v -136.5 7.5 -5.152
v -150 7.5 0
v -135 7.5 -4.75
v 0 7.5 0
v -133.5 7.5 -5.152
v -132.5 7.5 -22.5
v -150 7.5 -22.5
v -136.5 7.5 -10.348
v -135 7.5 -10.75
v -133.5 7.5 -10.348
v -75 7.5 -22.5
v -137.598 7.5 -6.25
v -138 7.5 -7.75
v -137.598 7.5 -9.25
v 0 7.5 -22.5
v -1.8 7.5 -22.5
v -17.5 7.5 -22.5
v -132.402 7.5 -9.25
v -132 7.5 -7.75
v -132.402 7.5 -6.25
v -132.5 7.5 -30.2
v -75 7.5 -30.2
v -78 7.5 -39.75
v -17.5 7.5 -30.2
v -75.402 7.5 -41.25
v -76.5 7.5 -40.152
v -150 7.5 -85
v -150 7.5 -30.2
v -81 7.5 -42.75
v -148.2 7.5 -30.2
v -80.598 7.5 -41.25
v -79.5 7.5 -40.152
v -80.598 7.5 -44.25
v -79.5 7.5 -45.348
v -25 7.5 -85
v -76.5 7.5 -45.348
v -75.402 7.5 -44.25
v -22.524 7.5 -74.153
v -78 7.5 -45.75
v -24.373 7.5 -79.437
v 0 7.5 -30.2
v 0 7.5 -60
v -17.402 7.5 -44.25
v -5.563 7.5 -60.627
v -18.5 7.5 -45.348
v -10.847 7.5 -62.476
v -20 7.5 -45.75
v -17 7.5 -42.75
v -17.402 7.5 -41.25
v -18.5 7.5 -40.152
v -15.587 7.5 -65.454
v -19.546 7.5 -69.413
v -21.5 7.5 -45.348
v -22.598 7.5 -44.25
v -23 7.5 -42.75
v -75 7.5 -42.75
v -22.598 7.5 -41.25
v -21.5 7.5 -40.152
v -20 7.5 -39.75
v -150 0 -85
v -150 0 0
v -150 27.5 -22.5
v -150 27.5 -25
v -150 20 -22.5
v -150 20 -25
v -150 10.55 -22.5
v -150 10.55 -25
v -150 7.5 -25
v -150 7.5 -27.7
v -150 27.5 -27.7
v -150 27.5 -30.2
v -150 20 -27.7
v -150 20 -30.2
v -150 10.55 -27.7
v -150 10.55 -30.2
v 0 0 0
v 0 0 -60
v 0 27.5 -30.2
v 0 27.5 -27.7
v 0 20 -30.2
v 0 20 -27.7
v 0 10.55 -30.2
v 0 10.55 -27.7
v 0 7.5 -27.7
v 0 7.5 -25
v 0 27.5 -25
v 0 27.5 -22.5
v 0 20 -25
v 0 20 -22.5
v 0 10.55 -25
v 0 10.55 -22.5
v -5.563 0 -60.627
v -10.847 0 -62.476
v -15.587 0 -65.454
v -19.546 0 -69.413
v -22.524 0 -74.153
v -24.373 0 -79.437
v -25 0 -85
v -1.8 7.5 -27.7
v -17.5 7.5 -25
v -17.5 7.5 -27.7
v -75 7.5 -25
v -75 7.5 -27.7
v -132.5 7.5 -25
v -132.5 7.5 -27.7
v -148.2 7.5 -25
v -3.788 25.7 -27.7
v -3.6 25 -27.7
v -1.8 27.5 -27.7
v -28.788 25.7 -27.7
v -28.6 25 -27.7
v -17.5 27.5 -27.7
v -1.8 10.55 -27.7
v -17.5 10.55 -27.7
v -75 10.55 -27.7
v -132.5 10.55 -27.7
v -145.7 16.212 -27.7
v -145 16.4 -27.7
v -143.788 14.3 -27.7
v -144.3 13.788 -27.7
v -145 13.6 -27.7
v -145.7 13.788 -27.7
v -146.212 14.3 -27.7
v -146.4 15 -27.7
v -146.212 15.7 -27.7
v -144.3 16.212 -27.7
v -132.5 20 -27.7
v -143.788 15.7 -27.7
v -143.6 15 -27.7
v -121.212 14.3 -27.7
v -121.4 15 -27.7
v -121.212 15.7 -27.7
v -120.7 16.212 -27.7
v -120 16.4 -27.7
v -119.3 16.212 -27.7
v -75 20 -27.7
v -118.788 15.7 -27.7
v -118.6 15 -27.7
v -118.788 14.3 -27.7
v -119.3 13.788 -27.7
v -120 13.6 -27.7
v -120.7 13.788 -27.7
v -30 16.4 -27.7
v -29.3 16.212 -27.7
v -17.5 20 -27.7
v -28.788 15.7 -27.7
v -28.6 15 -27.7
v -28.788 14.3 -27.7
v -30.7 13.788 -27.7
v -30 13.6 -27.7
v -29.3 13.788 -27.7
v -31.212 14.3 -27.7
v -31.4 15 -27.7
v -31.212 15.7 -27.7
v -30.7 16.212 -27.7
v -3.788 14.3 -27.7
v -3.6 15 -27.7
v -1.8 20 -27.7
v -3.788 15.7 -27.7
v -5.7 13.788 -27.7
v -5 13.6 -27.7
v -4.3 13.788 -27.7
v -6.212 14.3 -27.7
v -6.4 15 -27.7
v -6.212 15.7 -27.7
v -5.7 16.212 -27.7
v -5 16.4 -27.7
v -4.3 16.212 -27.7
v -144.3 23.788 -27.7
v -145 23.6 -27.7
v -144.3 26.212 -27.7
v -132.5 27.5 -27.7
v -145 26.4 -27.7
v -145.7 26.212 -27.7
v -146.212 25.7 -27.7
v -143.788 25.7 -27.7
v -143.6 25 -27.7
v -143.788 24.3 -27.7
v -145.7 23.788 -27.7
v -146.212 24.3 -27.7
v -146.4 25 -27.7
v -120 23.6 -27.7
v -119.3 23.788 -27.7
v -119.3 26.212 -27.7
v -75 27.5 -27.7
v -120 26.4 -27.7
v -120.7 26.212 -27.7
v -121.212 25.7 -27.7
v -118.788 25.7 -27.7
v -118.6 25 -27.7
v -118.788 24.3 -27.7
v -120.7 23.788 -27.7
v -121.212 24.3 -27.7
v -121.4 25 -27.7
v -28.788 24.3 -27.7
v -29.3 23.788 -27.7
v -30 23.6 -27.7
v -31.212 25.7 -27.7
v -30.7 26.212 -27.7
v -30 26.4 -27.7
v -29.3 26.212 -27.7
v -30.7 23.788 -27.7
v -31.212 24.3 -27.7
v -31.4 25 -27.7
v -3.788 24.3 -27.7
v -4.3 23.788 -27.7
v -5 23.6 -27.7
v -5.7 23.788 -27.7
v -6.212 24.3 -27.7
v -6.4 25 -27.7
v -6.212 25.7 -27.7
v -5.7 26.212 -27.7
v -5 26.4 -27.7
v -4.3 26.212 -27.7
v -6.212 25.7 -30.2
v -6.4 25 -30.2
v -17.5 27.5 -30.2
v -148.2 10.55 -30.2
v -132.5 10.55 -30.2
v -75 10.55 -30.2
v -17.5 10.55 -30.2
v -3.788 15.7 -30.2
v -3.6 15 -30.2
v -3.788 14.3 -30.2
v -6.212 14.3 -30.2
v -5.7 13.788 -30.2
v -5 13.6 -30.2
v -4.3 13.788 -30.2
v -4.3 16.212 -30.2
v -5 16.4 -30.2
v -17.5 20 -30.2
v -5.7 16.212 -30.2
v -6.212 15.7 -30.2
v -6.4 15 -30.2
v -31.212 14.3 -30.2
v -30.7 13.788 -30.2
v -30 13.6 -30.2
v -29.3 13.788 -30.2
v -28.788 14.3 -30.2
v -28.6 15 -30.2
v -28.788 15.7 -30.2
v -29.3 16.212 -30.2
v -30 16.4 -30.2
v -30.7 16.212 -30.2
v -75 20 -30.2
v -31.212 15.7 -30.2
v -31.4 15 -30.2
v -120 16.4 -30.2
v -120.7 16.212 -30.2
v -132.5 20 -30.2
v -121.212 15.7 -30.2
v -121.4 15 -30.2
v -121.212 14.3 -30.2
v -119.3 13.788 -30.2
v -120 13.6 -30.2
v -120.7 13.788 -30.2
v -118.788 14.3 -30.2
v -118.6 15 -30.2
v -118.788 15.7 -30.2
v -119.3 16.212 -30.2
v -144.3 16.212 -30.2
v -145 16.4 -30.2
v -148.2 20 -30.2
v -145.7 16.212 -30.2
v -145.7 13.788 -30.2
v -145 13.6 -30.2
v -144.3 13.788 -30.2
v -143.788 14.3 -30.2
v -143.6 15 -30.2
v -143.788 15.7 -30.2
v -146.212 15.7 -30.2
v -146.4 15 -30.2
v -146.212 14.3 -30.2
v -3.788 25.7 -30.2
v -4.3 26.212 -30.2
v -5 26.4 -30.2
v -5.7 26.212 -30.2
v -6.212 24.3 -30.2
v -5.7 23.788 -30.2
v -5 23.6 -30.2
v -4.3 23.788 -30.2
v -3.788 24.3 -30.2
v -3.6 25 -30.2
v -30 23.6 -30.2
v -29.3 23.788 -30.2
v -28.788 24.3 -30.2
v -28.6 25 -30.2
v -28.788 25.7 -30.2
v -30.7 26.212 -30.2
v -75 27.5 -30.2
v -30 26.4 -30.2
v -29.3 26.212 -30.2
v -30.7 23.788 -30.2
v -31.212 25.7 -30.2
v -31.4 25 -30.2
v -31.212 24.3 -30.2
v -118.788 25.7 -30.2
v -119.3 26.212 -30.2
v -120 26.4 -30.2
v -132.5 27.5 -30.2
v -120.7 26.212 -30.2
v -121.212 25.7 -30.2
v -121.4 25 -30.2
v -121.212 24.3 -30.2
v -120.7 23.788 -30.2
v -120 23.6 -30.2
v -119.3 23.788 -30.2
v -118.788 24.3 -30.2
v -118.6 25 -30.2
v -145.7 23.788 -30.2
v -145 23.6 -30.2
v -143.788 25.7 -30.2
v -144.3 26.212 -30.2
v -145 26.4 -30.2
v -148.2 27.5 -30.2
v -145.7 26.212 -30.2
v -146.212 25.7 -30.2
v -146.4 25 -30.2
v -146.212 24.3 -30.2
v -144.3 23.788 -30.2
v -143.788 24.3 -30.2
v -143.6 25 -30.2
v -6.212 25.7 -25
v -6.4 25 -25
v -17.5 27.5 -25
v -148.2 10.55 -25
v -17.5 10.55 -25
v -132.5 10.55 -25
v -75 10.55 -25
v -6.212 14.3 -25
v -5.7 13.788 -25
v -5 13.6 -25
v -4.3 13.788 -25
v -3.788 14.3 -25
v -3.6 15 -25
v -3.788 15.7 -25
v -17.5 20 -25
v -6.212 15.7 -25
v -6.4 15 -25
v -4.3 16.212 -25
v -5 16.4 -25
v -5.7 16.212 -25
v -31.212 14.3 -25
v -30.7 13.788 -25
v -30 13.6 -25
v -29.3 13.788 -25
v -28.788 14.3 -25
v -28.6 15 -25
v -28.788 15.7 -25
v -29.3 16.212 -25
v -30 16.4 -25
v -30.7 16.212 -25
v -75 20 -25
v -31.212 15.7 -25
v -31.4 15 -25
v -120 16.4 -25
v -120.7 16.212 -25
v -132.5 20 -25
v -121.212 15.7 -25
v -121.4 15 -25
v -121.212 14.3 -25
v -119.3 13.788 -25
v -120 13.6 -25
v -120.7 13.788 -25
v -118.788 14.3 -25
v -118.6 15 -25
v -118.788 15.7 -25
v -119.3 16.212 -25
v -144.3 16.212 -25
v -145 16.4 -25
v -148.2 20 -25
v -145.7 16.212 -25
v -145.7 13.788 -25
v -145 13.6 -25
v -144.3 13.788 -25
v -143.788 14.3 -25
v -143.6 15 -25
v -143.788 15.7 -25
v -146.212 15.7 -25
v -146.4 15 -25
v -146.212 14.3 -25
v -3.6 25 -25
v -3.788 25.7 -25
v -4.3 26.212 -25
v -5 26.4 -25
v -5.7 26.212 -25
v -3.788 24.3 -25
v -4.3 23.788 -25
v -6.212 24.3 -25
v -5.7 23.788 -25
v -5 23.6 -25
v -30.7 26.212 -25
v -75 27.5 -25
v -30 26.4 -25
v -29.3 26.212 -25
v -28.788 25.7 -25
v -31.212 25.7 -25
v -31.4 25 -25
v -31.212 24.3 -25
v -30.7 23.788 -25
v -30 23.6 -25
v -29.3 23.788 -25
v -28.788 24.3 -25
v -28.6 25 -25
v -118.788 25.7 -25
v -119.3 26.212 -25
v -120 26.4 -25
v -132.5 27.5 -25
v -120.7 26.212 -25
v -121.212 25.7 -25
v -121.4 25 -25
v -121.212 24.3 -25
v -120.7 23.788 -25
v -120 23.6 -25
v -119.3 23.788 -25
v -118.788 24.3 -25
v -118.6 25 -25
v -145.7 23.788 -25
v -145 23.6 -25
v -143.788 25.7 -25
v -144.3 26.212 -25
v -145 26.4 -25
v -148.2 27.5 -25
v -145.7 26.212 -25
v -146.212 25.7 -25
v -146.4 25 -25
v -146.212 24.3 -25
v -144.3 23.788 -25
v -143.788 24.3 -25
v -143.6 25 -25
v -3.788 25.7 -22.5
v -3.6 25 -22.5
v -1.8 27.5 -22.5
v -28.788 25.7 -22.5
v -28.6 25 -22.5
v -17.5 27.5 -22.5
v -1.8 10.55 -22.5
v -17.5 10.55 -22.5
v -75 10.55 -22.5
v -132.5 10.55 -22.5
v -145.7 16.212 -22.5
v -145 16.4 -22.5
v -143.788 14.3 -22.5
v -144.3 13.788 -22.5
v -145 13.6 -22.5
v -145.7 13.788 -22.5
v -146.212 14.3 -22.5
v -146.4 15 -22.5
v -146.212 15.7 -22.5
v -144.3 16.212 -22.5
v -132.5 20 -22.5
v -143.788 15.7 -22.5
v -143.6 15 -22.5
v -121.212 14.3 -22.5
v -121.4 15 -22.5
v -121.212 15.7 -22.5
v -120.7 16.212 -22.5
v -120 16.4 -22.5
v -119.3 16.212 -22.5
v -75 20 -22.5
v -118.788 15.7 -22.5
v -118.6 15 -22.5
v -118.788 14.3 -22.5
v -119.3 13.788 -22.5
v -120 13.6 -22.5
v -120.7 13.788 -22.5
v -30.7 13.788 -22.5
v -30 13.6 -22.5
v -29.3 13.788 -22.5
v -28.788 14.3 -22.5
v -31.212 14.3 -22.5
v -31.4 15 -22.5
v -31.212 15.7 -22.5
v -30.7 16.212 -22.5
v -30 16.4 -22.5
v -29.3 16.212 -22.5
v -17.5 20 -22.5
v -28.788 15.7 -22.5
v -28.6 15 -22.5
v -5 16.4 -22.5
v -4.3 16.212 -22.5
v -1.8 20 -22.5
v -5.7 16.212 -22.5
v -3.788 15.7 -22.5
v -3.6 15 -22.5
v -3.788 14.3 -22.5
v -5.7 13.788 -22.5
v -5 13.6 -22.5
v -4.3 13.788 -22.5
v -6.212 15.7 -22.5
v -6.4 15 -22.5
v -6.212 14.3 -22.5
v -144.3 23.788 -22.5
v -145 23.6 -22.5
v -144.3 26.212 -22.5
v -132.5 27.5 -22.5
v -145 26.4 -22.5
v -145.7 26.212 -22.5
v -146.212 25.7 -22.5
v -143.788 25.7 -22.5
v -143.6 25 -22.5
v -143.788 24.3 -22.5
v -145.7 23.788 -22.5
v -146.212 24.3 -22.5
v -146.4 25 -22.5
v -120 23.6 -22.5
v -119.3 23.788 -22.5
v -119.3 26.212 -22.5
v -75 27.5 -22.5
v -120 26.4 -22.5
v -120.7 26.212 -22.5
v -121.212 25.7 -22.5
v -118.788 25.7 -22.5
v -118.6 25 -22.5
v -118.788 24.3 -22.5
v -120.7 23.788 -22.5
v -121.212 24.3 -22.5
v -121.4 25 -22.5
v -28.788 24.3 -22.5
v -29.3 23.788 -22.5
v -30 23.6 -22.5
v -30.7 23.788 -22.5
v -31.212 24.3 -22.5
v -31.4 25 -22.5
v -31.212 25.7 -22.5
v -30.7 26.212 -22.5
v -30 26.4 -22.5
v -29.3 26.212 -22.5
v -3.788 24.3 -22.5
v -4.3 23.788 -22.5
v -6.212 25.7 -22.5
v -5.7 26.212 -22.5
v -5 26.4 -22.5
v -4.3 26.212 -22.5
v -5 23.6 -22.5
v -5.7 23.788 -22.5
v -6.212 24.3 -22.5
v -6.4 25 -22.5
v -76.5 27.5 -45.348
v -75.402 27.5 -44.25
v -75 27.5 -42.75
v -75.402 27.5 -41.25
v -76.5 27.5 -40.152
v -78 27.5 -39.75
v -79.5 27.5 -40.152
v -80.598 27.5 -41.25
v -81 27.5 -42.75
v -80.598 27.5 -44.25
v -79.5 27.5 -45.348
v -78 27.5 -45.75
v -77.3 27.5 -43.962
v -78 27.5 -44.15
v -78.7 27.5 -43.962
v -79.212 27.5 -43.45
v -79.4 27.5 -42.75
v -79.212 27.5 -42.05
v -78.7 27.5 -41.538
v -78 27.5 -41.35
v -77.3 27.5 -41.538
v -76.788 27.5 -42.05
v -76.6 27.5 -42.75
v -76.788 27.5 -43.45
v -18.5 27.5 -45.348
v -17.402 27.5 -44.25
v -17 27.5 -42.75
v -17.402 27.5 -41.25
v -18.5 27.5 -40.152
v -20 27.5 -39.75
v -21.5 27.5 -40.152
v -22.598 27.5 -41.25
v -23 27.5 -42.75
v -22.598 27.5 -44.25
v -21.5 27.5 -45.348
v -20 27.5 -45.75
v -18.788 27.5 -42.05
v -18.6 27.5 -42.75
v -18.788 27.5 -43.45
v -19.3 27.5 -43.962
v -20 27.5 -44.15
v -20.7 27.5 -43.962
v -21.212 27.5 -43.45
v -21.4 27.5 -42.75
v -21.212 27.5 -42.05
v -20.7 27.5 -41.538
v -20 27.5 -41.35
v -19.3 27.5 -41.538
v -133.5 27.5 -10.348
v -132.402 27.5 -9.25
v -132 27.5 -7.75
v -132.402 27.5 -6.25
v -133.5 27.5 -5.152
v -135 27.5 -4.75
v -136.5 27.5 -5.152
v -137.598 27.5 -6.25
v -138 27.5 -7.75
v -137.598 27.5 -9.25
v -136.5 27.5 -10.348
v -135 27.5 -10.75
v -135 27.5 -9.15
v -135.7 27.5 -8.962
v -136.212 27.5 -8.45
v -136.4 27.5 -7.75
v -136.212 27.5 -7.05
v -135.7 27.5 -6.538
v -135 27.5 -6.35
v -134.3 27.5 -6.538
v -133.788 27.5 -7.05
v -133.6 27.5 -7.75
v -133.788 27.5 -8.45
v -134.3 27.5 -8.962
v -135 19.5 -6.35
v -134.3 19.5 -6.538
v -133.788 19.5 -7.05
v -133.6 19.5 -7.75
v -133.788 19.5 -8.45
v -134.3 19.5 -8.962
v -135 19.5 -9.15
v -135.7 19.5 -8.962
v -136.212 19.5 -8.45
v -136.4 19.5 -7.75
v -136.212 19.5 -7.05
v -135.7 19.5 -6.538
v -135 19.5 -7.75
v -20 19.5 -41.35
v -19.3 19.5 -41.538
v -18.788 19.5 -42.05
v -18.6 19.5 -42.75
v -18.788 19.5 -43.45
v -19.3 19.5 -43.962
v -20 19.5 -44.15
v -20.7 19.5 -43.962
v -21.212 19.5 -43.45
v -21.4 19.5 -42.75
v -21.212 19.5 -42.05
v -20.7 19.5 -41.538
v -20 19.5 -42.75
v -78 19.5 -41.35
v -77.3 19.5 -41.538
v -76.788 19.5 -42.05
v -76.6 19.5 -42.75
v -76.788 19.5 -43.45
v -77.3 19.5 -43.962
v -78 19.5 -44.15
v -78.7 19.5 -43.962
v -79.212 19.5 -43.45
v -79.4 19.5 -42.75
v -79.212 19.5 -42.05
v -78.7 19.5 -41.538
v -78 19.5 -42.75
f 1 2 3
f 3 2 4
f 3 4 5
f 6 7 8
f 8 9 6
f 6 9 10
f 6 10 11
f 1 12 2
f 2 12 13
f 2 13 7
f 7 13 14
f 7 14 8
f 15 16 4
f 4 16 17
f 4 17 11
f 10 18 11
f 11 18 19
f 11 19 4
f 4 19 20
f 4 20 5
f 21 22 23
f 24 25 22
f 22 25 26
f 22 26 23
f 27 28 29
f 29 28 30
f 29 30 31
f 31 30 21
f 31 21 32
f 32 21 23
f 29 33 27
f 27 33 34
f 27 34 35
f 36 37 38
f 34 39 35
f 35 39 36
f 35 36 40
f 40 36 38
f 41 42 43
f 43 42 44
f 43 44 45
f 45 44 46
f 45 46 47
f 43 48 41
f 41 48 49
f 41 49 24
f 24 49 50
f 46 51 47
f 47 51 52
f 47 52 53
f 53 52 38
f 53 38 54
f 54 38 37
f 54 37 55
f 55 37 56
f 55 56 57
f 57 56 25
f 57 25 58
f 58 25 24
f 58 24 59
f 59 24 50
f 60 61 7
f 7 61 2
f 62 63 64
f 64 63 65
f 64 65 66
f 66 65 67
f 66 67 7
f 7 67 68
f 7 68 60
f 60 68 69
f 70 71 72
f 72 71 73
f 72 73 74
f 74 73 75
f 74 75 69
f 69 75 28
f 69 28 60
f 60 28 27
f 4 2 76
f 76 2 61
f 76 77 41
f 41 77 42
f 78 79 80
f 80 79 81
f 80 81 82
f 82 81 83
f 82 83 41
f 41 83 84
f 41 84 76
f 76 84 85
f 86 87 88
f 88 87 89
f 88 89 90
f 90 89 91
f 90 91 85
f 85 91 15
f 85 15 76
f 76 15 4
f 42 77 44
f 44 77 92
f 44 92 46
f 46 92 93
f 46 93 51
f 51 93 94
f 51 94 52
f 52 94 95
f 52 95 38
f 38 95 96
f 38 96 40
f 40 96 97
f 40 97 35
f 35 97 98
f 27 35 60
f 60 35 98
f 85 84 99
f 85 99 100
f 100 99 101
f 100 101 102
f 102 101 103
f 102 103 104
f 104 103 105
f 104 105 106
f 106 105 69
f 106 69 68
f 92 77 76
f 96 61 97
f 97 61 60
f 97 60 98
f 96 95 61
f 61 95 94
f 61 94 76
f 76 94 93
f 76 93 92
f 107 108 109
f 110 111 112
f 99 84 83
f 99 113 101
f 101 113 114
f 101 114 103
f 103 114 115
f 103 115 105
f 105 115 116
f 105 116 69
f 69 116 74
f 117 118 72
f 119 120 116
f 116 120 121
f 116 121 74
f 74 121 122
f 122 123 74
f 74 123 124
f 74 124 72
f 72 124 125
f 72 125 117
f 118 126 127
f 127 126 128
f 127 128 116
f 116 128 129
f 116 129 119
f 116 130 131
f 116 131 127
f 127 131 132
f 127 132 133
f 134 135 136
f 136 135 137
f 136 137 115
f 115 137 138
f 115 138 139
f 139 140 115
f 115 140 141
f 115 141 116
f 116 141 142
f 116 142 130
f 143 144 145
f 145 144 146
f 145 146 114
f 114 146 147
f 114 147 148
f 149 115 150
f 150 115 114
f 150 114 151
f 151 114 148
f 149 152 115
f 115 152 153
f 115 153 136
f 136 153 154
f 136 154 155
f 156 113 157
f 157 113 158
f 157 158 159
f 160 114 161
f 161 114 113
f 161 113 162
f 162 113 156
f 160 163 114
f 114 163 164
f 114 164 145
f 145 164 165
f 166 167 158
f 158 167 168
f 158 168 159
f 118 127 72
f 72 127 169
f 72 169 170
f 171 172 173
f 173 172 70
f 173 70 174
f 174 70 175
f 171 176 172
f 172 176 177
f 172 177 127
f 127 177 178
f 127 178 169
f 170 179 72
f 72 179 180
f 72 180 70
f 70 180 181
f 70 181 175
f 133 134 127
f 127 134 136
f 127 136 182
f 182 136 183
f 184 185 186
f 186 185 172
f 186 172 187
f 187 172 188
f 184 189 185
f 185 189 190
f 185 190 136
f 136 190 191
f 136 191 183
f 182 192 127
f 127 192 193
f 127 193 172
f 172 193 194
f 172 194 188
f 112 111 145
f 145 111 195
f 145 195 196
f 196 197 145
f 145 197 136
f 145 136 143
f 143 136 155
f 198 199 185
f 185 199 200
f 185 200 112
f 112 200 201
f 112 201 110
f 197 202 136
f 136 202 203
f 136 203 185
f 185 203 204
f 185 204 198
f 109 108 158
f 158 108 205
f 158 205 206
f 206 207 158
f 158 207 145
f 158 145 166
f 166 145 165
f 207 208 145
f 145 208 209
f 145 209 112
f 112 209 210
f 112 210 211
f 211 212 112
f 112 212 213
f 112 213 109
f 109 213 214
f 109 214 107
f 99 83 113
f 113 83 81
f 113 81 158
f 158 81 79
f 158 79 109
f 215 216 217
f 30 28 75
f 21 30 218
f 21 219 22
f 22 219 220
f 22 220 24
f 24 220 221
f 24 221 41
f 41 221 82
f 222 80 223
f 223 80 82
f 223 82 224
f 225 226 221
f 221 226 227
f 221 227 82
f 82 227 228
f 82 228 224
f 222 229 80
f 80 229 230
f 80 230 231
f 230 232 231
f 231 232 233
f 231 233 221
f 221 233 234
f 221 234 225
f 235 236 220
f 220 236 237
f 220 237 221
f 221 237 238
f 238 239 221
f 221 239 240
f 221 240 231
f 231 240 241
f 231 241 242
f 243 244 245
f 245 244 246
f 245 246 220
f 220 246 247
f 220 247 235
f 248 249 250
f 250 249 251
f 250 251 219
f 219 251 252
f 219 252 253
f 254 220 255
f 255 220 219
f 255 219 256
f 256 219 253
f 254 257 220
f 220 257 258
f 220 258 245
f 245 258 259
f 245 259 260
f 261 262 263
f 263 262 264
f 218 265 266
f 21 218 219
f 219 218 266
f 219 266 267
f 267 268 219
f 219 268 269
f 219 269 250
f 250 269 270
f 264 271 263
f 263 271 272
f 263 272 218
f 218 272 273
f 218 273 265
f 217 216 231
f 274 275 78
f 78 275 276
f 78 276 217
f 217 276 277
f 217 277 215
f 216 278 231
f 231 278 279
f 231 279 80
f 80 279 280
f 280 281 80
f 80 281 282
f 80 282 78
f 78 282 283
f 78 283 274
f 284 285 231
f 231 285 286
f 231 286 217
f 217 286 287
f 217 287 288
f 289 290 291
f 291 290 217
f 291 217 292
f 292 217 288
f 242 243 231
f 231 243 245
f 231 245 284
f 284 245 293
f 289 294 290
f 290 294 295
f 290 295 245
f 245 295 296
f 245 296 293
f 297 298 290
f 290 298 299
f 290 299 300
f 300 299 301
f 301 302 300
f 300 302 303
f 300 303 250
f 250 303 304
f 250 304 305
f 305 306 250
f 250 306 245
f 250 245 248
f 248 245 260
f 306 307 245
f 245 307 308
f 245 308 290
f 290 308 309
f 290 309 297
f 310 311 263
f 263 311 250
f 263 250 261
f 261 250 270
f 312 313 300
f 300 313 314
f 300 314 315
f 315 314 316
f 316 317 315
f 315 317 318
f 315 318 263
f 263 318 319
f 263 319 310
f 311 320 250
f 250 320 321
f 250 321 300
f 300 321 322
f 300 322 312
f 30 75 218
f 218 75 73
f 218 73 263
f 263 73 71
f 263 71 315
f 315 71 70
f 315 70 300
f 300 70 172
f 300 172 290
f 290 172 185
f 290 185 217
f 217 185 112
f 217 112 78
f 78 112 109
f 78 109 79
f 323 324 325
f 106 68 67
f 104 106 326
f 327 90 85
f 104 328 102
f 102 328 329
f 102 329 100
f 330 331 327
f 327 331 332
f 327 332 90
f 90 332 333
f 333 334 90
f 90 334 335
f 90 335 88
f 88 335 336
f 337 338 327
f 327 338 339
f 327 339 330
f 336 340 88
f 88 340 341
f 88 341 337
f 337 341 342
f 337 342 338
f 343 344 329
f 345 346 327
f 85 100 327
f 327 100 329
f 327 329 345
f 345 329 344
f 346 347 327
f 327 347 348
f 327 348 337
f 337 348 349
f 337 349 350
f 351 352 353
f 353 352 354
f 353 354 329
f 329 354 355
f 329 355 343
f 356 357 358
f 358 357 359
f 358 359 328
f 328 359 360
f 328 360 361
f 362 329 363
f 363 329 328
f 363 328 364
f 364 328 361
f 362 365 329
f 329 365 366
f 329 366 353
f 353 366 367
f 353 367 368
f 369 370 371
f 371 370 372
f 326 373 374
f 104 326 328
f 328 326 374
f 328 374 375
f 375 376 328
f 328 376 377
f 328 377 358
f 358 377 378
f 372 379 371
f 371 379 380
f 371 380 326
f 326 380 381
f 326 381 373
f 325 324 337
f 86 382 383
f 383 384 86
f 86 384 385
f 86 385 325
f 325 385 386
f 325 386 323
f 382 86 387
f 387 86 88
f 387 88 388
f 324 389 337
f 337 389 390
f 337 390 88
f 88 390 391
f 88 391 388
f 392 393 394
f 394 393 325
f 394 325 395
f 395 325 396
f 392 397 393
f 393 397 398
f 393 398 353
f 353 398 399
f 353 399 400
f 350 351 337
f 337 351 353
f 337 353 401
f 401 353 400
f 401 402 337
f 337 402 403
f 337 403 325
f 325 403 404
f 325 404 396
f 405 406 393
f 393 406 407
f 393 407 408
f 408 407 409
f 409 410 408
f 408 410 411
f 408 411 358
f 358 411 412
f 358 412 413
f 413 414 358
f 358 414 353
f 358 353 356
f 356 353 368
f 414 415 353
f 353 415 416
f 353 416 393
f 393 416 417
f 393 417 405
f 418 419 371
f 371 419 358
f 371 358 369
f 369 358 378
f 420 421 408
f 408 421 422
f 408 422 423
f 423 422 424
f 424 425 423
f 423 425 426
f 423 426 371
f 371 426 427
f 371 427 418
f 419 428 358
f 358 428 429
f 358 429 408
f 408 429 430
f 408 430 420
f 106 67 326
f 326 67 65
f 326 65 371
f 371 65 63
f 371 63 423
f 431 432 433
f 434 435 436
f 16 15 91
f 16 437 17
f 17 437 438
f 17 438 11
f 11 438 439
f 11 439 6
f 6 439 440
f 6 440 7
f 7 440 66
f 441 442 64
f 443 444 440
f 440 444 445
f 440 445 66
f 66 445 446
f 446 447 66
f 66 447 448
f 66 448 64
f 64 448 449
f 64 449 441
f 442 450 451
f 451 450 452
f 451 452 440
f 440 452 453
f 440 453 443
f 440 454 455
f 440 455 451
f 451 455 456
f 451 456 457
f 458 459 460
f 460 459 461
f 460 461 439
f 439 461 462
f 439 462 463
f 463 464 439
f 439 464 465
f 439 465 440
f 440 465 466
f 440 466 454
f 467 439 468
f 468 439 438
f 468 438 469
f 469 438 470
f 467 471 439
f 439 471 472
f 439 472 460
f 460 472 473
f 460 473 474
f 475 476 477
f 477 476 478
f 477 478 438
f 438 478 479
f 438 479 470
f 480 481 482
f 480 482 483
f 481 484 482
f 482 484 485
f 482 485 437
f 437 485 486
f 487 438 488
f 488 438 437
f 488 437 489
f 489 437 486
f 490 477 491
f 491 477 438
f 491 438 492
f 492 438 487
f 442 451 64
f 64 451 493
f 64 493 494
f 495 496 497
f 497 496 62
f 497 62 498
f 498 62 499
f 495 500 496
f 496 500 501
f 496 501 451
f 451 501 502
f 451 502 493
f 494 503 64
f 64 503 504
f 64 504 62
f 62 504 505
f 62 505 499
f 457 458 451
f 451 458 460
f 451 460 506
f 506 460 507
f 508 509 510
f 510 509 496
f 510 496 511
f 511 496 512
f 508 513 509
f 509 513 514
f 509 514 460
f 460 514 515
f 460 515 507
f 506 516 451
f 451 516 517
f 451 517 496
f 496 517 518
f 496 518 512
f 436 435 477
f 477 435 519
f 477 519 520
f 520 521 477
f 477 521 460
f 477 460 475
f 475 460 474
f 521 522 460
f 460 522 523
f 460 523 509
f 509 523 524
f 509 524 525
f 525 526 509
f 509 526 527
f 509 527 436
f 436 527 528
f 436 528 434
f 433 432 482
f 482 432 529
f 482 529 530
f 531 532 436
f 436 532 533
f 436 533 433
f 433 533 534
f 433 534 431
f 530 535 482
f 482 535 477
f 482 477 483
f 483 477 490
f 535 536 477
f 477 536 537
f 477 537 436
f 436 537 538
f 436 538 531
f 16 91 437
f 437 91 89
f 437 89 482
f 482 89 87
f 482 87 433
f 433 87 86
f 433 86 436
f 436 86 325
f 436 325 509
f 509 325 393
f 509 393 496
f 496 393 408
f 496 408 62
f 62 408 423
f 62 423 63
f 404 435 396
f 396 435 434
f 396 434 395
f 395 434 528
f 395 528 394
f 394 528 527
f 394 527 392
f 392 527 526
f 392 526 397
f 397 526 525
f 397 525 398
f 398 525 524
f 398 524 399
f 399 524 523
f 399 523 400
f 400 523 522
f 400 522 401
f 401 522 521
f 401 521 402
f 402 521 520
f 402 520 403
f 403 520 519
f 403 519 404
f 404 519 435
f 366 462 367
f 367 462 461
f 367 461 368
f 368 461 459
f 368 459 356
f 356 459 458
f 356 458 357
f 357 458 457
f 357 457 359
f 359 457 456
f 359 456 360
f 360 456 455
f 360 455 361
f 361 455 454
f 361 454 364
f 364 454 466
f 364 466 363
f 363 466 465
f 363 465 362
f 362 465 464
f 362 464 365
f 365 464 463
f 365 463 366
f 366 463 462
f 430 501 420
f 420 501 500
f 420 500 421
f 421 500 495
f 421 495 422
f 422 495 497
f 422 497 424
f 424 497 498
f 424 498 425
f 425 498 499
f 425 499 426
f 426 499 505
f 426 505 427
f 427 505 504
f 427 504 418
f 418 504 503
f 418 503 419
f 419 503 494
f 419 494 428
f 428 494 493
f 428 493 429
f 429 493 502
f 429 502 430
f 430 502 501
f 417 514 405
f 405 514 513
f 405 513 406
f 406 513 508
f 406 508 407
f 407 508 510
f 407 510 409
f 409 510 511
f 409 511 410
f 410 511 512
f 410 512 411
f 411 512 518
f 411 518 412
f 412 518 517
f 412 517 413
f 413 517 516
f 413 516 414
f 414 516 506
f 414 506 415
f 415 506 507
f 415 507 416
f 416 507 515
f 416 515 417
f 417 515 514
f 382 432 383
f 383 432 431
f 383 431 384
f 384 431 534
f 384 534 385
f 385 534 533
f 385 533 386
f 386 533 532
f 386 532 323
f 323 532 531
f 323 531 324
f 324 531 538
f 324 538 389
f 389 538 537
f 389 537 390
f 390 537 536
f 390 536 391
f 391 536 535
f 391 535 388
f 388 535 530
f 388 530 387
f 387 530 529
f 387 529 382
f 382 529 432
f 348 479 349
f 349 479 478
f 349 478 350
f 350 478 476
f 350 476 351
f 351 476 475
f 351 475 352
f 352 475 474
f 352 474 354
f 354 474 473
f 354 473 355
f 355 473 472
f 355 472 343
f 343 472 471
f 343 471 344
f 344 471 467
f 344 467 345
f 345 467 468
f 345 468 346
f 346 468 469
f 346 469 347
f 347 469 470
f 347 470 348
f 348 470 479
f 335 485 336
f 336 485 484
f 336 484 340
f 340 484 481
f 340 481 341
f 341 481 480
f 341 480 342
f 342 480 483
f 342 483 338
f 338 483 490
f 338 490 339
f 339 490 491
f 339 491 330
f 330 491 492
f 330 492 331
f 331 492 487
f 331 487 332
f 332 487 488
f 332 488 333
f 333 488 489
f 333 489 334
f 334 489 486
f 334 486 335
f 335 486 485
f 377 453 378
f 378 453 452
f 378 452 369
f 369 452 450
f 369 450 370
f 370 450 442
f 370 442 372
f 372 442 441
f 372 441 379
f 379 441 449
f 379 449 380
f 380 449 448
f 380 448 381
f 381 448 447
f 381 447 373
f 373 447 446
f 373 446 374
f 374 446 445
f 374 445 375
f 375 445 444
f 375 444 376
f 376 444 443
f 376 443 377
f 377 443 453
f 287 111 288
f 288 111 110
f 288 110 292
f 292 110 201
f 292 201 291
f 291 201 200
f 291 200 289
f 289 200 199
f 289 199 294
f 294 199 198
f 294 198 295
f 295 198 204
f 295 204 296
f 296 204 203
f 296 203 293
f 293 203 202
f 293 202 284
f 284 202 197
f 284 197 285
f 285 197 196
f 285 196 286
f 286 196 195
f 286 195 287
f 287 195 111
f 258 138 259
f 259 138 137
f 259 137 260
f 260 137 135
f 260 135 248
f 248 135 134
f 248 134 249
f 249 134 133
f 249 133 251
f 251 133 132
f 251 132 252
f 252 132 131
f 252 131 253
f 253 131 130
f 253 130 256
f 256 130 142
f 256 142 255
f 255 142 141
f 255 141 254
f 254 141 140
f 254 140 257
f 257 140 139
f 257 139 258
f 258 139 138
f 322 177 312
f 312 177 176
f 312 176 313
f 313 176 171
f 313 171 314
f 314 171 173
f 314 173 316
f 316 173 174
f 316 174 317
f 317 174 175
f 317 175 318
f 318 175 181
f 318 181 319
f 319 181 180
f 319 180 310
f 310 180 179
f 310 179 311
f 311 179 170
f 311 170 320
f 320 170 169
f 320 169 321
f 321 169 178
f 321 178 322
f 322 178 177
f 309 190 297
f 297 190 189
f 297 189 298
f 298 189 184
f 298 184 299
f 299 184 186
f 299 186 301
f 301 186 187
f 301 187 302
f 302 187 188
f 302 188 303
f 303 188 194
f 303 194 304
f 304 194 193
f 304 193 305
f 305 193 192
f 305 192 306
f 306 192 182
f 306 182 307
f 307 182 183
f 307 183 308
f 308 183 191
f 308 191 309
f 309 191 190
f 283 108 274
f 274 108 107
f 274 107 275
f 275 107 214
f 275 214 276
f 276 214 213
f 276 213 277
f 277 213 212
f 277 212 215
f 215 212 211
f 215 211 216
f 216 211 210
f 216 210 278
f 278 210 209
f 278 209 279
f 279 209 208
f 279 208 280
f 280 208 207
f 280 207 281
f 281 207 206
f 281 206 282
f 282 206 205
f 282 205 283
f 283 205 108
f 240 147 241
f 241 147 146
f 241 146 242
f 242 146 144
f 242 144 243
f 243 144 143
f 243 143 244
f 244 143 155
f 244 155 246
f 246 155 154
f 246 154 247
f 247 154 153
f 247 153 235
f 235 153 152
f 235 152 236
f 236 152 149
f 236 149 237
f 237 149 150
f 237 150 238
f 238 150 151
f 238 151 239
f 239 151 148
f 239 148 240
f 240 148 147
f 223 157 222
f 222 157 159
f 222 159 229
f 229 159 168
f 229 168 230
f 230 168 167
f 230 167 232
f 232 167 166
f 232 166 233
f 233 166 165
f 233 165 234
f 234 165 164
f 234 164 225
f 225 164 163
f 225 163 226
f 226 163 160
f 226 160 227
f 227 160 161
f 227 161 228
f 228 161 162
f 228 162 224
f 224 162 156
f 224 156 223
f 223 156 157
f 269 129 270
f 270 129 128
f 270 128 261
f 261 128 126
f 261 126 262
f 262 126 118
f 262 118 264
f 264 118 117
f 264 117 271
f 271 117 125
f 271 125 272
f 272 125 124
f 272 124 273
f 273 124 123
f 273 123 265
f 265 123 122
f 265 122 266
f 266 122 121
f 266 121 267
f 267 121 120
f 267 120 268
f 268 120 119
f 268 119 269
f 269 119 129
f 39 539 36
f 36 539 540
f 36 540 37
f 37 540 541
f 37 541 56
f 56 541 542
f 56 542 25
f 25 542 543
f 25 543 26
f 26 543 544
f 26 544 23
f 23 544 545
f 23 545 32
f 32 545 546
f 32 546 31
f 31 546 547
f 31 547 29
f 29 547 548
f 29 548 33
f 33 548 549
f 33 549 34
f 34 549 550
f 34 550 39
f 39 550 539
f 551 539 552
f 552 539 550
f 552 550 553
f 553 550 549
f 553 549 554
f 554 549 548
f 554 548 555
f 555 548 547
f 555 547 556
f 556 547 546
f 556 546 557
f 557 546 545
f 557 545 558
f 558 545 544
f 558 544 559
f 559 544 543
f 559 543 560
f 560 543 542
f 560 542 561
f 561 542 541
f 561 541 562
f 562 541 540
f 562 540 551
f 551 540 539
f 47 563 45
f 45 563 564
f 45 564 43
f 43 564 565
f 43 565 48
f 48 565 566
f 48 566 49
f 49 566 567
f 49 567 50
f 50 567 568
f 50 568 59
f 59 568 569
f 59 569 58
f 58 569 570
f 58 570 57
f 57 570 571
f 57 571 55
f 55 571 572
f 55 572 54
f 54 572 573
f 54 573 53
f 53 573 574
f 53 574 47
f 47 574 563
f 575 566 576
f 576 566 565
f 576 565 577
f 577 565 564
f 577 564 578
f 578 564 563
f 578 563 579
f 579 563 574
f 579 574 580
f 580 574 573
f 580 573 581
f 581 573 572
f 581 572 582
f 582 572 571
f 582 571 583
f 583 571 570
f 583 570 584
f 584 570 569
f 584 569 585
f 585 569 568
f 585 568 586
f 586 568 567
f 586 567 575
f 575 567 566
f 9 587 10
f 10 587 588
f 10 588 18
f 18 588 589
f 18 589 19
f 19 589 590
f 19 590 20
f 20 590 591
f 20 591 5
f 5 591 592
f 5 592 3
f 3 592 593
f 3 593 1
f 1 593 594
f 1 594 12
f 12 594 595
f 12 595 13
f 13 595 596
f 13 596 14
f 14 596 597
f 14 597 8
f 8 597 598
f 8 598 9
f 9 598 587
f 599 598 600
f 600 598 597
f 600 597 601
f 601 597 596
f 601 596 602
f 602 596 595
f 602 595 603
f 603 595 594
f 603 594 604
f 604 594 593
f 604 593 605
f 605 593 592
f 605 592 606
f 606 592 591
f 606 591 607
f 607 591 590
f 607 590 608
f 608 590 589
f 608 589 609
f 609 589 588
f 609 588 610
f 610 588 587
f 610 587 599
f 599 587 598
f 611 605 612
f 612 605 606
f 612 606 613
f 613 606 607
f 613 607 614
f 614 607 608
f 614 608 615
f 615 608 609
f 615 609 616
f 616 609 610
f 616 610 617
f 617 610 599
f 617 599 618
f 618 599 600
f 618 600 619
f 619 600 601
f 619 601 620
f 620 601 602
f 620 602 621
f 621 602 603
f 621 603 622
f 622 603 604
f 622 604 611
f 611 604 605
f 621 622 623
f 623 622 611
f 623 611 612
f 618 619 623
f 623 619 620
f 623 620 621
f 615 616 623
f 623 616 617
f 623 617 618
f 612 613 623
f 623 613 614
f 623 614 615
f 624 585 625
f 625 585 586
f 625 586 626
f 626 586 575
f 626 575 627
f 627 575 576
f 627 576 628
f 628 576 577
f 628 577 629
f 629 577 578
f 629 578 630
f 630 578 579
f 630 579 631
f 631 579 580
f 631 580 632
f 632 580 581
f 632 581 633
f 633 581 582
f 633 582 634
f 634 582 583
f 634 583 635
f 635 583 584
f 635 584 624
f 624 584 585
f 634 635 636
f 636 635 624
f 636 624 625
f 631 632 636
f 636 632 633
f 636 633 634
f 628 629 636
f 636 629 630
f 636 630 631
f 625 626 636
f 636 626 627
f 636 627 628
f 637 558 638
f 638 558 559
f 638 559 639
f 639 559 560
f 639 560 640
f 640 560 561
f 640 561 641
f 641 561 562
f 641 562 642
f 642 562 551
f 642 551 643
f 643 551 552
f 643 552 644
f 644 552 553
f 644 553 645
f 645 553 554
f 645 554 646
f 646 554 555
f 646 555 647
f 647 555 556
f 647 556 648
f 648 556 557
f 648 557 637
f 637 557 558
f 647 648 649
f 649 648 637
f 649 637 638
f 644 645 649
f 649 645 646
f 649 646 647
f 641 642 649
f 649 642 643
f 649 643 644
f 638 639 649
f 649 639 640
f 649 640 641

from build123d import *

# Parameters (mm, degrees)
BOSS_EXTRUDE1_DEPTH = 7.5
SKETCH2_W           = 150
SKETCH2_H           = 2.5
BOSS_EXTRUDE2_DEPTH = 20
SKETCH3_R           = 1.4
CUT_EXTRUDE1_DEPTH  = 10
SKETCH4_R           = 3
BOSS_EXTRUDE3_DEPTH = 20
SKETCH5_R           = 1.4
CUT_EXTRUDE2_DEPTH  = 8


with BuildPart() as part:
    # Sketch1 → Boss-Extrude1 (new body)
    with BuildSketch(Plane(origin=(0, 0, 0), x_dir=(1, 0, 0), z_dir=(0, 1, 0))):
        with BuildLine():
            Line((-150, 85), (-25, 85))
            ThreePointArc((-25, 85), (-17.67766953, 67.32233047), (0, 60))
            Line((0, 60), (0, 0))
            Line((0, 0), (-150, 0))
            Line((-150, 0), (-150, 85))
        make_face()
    extrude(amount=BOSS_EXTRUDE1_DEPTH)

    # Sketch2 → Boss-Extrude2 (add)
    with BuildSketch(Plane(origin=(0, 7.5, 0), x_dir=(1, 0, 0), z_dir=(0, 1, 0))):
        with Locations((-75, 23.75)):
            Rectangle(SKETCH2_W, SKETCH2_H)
        with Locations((-75, 28.95)):
            Rectangle(SKETCH2_W, SKETCH2_H)
    extrude(amount=BOSS_EXTRUDE2_DEPTH)

    # Sketch3 → Cut-Extrude1 (cut)
    with BuildSketch(Plane.XY.offset(-22.5)):
        with Locations((-30, 25)):
            Circle(SKETCH3_R)
        with Locations((-5, 25)):
            Circle(SKETCH3_R)
        with Locations((-30, 15)):
            Circle(SKETCH3_R)
        with Locations((-5, 15)):
            Circle(SKETCH3_R)
        with Locations((-145, 15)):
            Circle(SKETCH3_R)
        with Locations((-120, 15)):
            Circle(SKETCH3_R)
        with Locations((-145, 25)):
            Circle(SKETCH3_R)
        with Locations((-120, 25)):
            Circle(SKETCH3_R)
    extrude(amount=-CUT_EXTRUDE1_DEPTH, mode=Mode.SUBTRACT)

    # Sketch4 → Boss-Extrude3 (add)
    with BuildSketch(Plane(origin=(0, 7.5, 0), x_dir=(1, 0, 0), z_dir=(0, 1, 0))):
        with Locations(Location((-78, 42.75, 0), (0, 0, 270))):
            Circle(SKETCH4_R)
        with Locations(Location((-20, 42.75, 0), (0, 0, 270))):
            Circle(SKETCH4_R)
        with Locations(Location((-135, 7.75, 0), (0, 0, 270))):
            Circle(SKETCH4_R)
    extrude(amount=BOSS_EXTRUDE3_DEPTH)

    # Sketch5 → Cut-Extrude2 (cut)
    with BuildSketch(Plane(origin=(0, 27.5, 0), x_dir=(1, 0, 0), z_dir=(0, 1, 0))):
        with Locations(Location((-78, 42.75, 0), (0, 0, 270))):
            Circle(SKETCH5_R)
        with Locations(Location((-20, 42.75, 0), (0, 0, 270))):
            Circle(SKETCH5_R)
        with Locations(Location((-135, 7.75, 0), (0, 0, 270))):
            Circle(SKETCH5_R)
    extrude(amount=-CUT_EXTRUDE2_DEPTH, mode=Mode.SUBTRACT)


solid = part.part
